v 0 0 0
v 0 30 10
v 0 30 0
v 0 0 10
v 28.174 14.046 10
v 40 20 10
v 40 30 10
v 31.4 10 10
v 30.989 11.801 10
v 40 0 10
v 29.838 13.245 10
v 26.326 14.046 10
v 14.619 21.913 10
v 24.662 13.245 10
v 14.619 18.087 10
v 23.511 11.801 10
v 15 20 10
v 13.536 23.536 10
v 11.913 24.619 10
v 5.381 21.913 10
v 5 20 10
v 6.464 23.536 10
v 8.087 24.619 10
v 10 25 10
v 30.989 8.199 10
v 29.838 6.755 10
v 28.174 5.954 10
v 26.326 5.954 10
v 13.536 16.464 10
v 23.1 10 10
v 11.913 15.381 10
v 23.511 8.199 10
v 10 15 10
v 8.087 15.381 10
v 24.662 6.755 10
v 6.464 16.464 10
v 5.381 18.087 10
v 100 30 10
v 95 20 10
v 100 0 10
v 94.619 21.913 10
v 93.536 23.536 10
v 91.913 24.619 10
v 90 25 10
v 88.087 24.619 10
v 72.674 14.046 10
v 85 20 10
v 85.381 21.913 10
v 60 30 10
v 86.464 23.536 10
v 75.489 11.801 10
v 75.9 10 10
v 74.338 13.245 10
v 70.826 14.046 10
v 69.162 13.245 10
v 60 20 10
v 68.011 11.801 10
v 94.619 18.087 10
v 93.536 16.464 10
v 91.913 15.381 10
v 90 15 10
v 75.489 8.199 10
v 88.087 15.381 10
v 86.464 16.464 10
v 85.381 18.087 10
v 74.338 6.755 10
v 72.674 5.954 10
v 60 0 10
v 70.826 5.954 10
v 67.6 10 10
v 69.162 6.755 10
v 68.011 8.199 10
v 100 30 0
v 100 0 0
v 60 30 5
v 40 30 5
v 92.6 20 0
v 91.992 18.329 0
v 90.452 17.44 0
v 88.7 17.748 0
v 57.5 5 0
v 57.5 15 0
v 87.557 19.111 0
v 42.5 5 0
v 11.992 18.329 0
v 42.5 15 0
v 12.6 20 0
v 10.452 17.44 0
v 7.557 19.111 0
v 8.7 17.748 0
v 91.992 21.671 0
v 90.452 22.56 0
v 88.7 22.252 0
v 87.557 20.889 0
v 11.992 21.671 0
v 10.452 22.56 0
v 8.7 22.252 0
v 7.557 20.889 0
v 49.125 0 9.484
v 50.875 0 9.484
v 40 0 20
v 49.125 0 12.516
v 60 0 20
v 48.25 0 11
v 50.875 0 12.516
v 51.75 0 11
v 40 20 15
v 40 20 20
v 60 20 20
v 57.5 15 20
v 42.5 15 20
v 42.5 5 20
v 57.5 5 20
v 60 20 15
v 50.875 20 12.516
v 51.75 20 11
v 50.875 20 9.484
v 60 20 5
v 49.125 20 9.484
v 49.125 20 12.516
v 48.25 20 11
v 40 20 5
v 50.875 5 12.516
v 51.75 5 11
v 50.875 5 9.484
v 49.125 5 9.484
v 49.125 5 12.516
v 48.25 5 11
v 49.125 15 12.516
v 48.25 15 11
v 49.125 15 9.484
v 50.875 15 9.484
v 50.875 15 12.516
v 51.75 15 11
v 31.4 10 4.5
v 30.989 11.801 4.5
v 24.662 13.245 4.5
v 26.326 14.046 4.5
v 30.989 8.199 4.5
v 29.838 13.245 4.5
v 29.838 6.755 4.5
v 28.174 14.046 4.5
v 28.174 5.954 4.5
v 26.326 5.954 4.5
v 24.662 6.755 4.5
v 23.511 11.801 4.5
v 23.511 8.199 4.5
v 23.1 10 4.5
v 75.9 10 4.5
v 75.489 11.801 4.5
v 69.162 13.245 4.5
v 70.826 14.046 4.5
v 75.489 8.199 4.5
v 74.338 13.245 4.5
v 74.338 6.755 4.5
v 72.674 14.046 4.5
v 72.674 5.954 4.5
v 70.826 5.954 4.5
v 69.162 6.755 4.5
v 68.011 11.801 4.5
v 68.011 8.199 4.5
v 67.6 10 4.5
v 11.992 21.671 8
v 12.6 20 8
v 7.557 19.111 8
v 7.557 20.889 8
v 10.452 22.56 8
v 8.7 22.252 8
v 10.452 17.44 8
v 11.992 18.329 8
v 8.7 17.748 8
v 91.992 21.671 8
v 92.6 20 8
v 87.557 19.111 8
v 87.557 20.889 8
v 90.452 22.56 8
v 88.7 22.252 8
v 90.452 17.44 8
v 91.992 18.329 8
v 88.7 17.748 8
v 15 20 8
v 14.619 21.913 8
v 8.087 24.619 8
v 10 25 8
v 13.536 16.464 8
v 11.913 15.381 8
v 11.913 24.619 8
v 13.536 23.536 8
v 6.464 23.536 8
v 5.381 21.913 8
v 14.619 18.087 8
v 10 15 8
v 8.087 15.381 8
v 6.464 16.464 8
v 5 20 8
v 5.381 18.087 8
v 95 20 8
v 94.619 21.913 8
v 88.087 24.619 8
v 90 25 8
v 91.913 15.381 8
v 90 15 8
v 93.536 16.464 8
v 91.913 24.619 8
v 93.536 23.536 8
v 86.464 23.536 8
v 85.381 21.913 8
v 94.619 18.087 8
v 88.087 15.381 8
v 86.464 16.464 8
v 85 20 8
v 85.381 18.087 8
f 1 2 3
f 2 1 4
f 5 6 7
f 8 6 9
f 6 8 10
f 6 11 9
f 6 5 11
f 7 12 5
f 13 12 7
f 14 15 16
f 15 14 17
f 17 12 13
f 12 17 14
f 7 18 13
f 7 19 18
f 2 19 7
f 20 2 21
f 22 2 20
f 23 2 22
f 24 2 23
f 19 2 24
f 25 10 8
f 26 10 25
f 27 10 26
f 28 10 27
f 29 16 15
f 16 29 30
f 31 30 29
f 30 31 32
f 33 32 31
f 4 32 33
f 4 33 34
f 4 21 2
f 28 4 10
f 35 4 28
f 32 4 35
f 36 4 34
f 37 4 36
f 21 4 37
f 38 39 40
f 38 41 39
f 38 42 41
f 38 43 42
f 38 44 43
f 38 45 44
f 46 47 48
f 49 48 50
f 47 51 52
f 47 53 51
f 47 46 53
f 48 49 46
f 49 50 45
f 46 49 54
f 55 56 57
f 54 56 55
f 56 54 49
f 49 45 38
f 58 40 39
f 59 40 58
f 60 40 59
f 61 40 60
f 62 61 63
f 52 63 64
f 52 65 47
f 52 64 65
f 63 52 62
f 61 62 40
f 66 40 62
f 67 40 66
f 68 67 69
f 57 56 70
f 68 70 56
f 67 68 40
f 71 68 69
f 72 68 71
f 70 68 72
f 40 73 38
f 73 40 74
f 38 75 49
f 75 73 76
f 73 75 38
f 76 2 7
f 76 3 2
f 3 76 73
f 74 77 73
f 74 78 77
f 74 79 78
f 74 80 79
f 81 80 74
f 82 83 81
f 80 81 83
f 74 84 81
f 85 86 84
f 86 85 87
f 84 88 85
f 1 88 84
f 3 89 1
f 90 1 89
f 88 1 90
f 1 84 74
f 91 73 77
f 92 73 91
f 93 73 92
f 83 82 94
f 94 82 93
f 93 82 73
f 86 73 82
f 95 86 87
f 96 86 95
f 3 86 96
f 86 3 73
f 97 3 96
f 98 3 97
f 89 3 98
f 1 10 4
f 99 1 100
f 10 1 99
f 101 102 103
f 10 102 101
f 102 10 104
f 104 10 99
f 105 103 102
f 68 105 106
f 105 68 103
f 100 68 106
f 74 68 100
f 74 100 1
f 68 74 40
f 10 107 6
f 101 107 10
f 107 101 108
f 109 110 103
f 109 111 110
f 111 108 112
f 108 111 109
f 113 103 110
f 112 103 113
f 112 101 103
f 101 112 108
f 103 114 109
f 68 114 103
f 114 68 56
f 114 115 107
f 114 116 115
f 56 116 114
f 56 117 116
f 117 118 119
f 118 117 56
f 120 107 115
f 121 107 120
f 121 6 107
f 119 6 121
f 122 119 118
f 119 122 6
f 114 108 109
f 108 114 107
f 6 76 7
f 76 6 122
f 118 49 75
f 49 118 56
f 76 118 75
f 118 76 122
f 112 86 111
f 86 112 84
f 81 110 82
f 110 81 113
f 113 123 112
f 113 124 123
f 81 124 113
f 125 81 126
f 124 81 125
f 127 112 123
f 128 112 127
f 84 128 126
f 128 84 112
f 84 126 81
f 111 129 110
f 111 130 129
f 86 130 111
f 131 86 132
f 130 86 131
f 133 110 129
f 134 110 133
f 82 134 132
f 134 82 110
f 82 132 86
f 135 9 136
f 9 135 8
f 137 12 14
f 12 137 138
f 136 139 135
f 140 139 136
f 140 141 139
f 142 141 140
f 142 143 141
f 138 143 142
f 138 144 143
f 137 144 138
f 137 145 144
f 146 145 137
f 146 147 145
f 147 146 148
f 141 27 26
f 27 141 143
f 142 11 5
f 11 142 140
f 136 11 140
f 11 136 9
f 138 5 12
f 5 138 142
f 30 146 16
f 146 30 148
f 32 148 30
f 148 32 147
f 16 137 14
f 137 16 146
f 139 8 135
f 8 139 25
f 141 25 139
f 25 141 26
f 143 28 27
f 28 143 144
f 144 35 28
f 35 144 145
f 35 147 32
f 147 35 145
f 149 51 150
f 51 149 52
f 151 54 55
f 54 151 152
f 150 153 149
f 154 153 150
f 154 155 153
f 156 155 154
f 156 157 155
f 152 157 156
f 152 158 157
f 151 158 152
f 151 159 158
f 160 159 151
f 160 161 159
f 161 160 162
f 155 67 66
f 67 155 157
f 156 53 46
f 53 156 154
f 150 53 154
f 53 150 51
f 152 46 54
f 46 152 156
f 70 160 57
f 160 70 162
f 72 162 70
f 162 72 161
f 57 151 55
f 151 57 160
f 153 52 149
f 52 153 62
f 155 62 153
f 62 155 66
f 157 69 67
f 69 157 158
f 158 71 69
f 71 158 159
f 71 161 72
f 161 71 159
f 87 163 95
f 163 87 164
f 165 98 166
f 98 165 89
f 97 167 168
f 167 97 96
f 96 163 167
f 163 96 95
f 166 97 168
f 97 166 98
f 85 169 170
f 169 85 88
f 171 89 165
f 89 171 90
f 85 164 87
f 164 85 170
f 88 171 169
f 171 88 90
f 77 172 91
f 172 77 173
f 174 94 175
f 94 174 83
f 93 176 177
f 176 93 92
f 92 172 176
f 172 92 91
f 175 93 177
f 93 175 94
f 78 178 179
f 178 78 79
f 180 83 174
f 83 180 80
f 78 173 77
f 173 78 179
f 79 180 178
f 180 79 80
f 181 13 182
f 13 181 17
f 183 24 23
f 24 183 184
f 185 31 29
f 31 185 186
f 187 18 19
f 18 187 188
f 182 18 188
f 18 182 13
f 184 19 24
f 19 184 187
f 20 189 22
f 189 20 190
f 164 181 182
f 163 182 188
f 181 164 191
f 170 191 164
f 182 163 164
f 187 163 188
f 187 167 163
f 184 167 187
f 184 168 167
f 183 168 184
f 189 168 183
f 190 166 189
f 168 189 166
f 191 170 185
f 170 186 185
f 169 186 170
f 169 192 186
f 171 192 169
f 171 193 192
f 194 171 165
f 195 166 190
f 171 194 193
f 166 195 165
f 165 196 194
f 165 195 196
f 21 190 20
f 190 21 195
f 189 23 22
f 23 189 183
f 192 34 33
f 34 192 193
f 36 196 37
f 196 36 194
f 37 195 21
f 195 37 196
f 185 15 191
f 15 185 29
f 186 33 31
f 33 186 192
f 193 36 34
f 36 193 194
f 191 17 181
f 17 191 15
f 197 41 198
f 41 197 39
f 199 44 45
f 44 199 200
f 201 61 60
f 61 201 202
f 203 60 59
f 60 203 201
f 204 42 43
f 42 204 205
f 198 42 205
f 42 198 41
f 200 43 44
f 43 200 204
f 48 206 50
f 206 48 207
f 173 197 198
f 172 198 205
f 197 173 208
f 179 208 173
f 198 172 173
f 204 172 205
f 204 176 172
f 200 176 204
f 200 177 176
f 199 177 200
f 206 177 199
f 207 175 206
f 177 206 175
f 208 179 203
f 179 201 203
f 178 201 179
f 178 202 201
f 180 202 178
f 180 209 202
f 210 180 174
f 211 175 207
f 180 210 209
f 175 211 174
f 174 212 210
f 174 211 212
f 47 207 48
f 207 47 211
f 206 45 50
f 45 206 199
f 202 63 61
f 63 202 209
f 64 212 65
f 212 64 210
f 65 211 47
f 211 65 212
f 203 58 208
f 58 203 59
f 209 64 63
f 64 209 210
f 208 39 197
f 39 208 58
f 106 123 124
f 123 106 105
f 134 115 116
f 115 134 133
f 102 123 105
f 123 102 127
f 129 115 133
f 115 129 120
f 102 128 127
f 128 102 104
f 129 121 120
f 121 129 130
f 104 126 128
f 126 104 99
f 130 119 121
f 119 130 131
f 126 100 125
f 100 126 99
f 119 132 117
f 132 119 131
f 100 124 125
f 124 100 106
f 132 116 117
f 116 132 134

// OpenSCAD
// X_end

difference() {
    union() {
        cube([100,30,10]);
        translate([40,0, 10])
        cube([20, 20, 10]); }
    translate([50, 25, 10]) cube([20, 10, 10], center=true);
    translate([42.5,5,-5])
      cube([15,10,40]);
    translate([27.25,10,4.5])
      cylinder (h = 10, r=4.15); //for 8-mm rod
    translate([71.75,10,4.5])
      cylinder (h = 10, r=4.15); //for 8-mm rod
    translate([10,20,-10])
      cylinder (h = 30, r = 2.6); //M5 screw
    translate([90,20,-10])
      cylinder (h = 30, r = 2.6); // M5 screw
//Sinkings for M5 screws
    translate([10,20,8])
      cylinder (h = 10, r = 5);
    translate([90,20,8])
      cylinder (h = 10, r = 5);
//hole for ball bearing screw
    rotate([90,0,0]) translate([50,11,-25])
      cylinder (h = 30, r = 1.75);
}
